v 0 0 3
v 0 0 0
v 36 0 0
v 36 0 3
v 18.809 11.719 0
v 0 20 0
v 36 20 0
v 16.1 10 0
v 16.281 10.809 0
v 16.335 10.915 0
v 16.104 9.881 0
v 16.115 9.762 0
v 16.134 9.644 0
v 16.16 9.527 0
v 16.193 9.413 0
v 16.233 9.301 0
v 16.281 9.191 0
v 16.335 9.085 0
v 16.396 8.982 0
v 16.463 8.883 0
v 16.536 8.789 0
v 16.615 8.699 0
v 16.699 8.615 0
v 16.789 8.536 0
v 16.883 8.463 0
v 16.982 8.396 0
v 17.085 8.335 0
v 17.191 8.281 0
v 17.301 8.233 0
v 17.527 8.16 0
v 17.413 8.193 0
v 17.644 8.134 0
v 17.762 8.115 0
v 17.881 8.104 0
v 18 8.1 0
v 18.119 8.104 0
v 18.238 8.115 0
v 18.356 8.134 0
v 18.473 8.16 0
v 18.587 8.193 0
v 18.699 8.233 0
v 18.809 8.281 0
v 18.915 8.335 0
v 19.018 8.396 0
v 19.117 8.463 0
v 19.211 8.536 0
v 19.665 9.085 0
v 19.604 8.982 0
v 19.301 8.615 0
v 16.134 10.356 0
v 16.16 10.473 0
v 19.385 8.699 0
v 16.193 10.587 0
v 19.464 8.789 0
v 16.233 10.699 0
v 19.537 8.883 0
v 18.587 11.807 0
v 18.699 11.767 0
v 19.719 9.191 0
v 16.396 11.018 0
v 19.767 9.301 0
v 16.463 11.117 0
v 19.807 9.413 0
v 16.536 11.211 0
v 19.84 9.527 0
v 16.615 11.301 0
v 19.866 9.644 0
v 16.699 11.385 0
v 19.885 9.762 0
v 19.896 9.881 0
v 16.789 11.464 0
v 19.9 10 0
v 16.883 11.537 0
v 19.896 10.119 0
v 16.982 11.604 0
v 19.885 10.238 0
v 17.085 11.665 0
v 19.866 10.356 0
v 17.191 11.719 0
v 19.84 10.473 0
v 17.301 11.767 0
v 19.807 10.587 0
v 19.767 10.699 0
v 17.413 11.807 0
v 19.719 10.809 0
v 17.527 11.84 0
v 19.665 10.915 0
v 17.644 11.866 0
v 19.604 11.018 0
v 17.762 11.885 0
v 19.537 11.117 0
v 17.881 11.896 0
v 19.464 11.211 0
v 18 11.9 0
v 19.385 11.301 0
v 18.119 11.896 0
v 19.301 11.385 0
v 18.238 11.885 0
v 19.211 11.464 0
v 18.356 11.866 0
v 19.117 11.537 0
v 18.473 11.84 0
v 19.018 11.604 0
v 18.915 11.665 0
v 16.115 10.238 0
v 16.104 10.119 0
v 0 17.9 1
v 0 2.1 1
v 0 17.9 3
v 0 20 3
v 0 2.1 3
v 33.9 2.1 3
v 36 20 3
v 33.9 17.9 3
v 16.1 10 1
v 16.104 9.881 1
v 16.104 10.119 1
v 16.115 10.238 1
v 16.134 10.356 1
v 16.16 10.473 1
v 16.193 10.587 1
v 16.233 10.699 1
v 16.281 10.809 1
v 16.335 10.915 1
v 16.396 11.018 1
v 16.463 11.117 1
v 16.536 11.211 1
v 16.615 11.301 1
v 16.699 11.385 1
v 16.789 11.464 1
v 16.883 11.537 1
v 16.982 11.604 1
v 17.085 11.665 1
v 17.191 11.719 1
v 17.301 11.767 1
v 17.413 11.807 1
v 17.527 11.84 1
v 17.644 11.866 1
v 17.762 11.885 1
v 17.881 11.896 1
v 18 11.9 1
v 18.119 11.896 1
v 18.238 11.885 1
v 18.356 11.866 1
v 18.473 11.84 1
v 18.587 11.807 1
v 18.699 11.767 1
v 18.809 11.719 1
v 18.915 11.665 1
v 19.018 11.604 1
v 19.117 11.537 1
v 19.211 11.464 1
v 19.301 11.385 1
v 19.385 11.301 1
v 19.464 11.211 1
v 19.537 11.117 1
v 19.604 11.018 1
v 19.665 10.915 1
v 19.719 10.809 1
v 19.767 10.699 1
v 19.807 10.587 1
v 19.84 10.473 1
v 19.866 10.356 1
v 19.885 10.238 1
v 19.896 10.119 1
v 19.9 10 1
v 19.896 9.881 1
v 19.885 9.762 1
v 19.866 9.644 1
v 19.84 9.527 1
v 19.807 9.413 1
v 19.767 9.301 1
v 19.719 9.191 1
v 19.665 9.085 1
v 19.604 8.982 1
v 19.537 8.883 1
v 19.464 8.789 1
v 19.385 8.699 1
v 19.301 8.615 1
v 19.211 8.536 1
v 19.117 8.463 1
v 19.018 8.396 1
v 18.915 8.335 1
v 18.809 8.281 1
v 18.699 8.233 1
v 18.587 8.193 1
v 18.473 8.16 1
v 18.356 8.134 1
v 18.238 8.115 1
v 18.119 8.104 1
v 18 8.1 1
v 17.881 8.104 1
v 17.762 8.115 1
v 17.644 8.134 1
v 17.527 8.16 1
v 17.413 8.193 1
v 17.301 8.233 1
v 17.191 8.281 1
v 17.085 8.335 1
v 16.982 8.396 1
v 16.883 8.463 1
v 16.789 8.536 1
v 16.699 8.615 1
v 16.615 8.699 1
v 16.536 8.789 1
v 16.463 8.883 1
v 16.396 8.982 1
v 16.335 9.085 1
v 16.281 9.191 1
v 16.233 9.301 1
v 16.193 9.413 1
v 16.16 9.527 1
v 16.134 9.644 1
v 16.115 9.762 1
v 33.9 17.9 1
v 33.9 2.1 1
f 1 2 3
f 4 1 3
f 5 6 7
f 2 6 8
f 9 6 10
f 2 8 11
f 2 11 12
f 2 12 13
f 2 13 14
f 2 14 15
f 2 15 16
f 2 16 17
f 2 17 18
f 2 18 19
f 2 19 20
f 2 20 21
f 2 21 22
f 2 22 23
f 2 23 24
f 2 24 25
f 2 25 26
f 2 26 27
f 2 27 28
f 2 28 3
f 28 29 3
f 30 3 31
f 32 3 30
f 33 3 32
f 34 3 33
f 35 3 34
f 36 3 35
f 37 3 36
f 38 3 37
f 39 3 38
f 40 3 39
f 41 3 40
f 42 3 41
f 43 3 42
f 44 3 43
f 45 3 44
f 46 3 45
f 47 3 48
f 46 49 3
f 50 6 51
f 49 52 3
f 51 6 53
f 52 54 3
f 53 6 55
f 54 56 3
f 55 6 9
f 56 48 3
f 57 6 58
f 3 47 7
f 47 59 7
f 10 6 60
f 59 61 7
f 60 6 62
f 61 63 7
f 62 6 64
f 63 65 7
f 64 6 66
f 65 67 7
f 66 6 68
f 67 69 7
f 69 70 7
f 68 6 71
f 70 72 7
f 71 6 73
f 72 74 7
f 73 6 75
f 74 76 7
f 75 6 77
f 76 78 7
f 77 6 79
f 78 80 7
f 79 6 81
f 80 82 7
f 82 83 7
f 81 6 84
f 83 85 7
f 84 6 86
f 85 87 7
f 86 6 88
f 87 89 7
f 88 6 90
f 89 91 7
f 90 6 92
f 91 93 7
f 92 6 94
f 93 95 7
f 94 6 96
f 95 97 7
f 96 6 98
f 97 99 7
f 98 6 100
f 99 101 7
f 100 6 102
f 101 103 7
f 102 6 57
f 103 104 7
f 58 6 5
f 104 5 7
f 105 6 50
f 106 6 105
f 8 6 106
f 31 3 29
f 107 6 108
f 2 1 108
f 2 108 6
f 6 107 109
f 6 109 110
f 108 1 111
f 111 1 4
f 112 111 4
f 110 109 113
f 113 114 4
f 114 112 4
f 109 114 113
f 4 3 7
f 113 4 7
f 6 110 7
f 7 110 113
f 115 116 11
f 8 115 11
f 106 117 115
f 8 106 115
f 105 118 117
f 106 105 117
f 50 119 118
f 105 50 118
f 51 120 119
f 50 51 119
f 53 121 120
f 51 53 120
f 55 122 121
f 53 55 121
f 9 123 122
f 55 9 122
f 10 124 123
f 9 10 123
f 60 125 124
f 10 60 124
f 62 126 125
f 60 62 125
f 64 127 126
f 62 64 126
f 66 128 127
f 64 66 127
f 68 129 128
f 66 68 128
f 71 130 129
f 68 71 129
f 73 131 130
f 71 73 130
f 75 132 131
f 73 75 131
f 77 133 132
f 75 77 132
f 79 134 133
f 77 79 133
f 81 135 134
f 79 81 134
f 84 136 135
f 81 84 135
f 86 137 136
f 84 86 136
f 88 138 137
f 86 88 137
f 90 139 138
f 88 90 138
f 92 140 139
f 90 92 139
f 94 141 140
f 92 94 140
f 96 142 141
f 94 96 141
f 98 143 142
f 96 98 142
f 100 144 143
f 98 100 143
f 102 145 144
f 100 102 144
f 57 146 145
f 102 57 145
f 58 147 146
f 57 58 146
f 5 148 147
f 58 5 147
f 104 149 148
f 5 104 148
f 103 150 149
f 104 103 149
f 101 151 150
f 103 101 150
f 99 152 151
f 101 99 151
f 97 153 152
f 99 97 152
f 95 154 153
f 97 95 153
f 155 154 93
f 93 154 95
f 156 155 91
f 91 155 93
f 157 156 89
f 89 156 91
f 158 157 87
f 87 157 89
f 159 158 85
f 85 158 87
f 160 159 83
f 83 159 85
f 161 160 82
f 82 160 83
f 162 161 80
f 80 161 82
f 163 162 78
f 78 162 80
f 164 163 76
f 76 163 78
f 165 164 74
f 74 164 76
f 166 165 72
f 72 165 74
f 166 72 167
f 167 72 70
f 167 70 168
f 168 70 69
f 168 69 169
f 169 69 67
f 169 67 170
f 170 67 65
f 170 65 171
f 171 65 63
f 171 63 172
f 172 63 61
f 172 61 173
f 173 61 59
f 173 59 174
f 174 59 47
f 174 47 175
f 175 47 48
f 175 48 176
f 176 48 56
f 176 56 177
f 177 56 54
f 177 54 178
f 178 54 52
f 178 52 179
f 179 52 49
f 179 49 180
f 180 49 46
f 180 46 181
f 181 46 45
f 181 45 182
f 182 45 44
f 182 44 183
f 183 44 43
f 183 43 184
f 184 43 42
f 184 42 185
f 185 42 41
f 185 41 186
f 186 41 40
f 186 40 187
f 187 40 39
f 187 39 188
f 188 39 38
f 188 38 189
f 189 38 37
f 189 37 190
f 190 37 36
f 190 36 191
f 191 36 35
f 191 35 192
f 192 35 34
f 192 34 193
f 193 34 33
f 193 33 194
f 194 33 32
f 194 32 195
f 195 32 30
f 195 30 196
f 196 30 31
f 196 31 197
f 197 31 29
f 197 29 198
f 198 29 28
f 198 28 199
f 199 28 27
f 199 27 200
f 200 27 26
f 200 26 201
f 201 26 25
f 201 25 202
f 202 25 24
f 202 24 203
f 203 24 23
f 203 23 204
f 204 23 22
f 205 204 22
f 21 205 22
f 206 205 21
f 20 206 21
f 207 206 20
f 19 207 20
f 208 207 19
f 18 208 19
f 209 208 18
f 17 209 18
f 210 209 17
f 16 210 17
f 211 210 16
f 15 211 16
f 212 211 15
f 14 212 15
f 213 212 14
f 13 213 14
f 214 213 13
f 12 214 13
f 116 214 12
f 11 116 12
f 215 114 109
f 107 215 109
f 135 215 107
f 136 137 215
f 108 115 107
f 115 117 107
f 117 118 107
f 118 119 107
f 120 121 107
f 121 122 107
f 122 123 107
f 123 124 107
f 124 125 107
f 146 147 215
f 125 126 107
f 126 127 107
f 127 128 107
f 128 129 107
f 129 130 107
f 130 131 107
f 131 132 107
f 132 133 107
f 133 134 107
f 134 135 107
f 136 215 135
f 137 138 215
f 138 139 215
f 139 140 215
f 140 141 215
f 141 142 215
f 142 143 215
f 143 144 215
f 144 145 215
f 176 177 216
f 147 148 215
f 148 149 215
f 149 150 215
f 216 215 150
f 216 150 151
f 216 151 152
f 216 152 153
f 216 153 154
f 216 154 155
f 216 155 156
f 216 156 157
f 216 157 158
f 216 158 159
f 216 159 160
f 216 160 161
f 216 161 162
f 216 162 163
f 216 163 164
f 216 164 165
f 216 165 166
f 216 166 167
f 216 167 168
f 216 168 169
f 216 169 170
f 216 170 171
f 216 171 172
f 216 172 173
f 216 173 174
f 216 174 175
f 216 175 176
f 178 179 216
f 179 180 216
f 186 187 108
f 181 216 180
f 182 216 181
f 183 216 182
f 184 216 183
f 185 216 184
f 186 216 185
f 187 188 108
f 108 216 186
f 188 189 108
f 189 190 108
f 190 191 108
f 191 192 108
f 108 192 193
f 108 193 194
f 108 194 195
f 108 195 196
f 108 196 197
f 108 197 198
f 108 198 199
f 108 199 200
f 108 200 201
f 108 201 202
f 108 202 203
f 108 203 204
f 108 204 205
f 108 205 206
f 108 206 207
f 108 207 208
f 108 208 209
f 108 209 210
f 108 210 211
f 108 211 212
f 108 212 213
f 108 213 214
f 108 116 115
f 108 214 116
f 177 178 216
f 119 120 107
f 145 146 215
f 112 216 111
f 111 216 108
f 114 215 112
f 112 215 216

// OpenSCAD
// file: blinds-refs.scad
wallh=44;
wallw=42;
cornerrad=2;

3dpcomp=0.12;
distfrombottom=wallh-10;
distfromleft=wallw-18;

//fan
fanhb=11.0;
fanhs=9.6;

//arms
armw=36;
armh=20;
armslotthick=3.0;
armslotdepth=2.0;

//adapters
adapterw=32 -0.2; // to slide in fully 
adapterh=16 -0.2 ; //for sliding easier



//wall1 
wall1_thick=8;


//wall2
wall2_thick=6.4;
servobigcircle=11.5+ 3dpcomp; 
servosmallcircle=5.8+ 3dpcomp;
polygonlefth=5.8+ 3dpcomp;
polygonrighth=6+ 3dpcomp;
polygonw=6;
servo9gw=22.8;
servomounth=4 ;		//height of the screw pad for servo
servomountsize=6; //mount is 6mm square
servomountax=distfromleft+servobigcircle/2 +1;
servomountay=distfrombottom - servomountsize/2;
servomountbx=servomountax - servo9gw -servomountsize -1 ;
servomountby=servomountay;

//wall3
wall3_thick=4;
wall3slotw=adapterw;
wall3sloth=adapterh+ 2+2;
wall3slotd=2;

//base-frame
baseextra=2; 			// edge of base more than the wall widths
base_thick=6;

gap1=30;
gap2=26 + 2; 				//v.2 made this gap 26 +2 for buffer i.e extra thick adapter 
slotw=wallw+3dpcomp+.08;
slot1=wall1_thick+3dpcomp;
slot2=wall2_thick+3dpcomp;
slot3=wall3_thick + 3dpcomp;
sloth=4;
framew=slotw+baseextra;
frameh=slot1+slot2+slot3+gap1+gap2+baseextra;
// main file
$fn=100;


include  <blinds-refs.scad>;



sloty1=(armh-adapterh)/2;
slotx1=(armw-adapterw)/2;

sloty2=sloty1+adapterh;
slotx2=slotx1+adapterw;

servoarmouter();

module servoarmouter () {

 difference () {

   linear_extrude( height=armslotthick)
   color ( "blue") 
   polygon( [ [0,0],[armw,0],[armw,armh],[0,armh] ] , [   [0,1,2,3] ]);
  
   color("red")
   translate([0,0,armslotthick-armslotdepth]) 
   linear_extrude(height=armslotdepth)	
   polygon( [ [0,sloty1],[slotx2,sloty1],[slotx2,sloty2],[0,sloty2] ] , [   [0,1,2,3] ]);

	color ("red")
	translate([armw/2,armh/2,0])
	linear_extrude(height=1.2)
	circle(d=3.8);

  }

}
